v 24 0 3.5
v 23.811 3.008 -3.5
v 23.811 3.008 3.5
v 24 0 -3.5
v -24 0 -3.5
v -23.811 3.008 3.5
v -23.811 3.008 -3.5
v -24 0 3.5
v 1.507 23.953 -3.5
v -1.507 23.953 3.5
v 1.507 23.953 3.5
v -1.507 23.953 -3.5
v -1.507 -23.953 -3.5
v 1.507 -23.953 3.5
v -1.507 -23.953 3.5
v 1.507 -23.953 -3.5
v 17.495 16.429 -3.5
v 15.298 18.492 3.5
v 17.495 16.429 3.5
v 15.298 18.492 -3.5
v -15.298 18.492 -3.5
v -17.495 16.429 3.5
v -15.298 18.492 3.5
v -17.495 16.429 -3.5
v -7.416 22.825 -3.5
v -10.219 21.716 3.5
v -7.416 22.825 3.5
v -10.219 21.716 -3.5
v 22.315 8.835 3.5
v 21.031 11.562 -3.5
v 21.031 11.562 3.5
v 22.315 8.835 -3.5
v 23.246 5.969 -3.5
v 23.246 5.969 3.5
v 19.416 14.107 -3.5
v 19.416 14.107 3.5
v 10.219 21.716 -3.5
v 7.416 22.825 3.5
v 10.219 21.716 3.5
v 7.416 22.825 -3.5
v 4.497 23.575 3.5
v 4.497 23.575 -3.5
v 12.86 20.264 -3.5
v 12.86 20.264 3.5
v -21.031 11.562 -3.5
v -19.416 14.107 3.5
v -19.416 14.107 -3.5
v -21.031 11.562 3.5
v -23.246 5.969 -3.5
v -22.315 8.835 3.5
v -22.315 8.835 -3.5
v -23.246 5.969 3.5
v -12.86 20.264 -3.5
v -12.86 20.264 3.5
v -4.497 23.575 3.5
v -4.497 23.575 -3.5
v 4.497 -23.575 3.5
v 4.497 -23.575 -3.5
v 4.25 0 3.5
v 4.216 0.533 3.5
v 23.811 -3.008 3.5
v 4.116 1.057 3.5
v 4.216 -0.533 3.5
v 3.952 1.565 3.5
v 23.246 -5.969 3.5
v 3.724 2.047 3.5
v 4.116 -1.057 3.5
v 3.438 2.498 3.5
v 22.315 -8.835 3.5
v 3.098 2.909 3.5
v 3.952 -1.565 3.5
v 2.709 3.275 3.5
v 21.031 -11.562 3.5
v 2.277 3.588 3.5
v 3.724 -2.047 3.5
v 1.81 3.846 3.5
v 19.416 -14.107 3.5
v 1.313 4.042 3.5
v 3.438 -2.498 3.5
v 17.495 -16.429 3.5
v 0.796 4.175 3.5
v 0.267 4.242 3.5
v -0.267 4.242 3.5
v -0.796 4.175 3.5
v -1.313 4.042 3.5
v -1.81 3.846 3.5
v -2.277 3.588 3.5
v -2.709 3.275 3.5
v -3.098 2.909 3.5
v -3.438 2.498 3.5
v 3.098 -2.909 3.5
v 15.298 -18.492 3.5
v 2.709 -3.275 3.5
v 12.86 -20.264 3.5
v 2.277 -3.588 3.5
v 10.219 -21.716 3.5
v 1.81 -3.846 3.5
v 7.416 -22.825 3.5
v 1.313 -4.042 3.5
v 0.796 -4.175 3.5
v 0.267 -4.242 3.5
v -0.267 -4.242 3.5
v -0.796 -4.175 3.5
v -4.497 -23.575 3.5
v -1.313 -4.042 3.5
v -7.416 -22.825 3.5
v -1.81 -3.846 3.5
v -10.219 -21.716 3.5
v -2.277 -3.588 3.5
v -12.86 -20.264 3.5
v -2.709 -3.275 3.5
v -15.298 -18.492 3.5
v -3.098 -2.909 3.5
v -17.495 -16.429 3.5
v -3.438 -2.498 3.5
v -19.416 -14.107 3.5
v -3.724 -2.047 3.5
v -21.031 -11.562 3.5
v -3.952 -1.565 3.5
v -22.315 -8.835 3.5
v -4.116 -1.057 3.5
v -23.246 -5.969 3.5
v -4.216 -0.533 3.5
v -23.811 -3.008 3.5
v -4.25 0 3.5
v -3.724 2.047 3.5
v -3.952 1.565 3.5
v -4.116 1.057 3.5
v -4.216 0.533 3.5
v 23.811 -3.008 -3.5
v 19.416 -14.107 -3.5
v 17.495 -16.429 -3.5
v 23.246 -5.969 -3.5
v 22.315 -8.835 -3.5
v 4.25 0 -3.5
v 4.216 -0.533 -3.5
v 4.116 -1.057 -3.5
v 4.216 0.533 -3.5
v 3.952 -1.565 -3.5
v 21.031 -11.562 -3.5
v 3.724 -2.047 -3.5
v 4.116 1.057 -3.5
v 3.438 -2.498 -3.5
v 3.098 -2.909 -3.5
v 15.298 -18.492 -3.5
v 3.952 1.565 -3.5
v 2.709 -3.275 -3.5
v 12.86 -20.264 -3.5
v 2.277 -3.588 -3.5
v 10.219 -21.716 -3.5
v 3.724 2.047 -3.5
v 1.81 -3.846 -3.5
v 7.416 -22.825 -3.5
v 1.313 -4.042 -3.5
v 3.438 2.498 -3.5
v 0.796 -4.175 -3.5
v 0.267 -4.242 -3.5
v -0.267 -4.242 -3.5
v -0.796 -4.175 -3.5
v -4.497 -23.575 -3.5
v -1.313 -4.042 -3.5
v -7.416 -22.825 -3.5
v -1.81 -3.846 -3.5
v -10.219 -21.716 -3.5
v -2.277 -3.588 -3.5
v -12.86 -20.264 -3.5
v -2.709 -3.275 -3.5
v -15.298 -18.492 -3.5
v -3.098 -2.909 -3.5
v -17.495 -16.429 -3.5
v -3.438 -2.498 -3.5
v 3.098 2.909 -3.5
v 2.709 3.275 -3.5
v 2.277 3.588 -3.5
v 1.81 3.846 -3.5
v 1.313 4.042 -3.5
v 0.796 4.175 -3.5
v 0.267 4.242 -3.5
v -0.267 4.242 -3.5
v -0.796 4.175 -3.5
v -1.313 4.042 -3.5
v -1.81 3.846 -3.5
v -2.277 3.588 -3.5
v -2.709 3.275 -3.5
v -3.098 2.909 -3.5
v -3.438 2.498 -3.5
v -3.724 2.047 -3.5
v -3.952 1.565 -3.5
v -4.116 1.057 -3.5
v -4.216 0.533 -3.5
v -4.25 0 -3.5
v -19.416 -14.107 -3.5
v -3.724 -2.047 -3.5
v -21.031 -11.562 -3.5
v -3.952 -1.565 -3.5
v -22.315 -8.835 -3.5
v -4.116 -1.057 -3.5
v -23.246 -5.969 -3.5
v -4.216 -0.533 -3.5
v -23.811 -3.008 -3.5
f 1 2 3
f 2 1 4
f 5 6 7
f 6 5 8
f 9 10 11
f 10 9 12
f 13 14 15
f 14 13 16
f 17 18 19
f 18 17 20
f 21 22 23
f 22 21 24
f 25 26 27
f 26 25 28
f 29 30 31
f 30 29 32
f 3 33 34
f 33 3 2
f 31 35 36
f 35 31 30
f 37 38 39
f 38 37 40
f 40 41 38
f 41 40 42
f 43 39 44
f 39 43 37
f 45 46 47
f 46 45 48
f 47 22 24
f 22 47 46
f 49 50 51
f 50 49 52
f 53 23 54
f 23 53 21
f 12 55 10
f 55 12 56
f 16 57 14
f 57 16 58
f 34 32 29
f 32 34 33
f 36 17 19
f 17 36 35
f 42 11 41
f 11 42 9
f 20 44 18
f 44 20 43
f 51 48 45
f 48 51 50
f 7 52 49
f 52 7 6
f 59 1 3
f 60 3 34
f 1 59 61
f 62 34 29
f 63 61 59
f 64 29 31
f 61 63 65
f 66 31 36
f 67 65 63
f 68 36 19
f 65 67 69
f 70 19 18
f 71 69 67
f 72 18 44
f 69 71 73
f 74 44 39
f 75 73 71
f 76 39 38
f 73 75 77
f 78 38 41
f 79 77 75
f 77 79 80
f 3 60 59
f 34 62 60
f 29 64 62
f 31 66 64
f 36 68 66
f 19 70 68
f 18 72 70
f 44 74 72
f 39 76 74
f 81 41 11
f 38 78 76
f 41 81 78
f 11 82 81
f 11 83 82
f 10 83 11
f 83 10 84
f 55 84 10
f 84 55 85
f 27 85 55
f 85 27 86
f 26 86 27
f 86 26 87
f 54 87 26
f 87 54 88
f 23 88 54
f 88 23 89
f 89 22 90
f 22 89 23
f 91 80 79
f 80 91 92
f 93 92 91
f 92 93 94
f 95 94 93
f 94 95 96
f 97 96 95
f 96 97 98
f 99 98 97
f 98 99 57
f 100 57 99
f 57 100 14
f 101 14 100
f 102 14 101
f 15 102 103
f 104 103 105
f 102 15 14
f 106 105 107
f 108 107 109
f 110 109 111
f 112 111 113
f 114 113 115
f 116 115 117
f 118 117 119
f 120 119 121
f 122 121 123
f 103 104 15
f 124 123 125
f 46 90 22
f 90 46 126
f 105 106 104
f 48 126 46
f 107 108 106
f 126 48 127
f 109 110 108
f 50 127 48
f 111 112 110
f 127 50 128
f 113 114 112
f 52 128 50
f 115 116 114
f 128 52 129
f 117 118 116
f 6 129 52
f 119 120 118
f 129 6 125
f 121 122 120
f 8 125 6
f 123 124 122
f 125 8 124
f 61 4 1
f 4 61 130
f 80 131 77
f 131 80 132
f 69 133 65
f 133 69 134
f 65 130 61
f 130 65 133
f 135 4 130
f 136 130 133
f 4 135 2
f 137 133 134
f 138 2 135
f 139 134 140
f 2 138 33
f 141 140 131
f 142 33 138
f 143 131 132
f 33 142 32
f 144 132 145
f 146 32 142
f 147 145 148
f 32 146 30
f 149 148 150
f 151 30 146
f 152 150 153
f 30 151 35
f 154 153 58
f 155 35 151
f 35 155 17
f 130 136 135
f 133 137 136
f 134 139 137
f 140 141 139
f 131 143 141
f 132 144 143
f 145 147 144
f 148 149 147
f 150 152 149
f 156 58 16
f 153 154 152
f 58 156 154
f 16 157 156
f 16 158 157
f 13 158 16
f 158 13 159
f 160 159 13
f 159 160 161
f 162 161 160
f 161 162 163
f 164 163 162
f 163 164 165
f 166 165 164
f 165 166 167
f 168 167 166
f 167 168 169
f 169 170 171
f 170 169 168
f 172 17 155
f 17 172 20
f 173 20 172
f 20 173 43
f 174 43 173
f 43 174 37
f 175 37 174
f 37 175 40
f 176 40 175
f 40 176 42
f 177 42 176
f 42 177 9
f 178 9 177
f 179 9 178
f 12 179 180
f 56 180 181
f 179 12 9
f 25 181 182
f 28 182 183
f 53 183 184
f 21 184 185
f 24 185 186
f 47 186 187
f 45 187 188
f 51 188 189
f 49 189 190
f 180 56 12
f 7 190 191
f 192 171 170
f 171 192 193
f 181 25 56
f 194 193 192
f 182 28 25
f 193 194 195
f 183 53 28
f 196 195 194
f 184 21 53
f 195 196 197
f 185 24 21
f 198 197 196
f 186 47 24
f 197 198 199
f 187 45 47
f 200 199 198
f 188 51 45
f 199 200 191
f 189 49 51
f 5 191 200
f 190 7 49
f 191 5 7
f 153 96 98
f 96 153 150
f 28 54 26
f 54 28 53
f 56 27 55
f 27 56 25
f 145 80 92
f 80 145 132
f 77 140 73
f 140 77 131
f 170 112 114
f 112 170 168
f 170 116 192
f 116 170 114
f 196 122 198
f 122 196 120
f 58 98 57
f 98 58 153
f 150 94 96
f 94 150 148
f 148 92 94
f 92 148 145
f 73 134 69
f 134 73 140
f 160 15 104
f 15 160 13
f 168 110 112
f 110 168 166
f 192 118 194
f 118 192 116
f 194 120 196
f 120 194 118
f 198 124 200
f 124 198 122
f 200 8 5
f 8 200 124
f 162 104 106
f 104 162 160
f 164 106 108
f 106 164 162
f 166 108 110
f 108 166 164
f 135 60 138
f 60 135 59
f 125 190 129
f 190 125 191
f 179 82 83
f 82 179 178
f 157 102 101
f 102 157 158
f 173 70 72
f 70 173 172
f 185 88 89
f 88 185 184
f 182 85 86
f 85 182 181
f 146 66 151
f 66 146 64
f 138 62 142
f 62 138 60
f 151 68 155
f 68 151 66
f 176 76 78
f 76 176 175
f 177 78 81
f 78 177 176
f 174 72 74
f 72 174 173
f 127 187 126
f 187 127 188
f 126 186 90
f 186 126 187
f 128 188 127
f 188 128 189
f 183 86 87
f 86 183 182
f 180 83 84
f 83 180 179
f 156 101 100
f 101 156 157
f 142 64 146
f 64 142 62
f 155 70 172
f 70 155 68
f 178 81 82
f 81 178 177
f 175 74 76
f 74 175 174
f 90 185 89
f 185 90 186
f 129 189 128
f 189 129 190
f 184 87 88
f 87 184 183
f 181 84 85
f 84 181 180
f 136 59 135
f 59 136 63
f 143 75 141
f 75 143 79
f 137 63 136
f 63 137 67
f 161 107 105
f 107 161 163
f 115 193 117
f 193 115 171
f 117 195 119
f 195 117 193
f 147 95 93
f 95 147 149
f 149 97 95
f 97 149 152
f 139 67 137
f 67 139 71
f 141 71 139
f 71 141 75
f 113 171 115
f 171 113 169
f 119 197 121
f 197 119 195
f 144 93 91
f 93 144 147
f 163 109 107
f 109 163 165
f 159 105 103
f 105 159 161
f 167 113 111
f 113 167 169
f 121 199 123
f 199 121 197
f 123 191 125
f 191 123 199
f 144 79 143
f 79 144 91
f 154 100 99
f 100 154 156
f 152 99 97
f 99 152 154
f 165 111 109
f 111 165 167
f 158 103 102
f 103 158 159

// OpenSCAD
$fn = 50;


difference() {
	union() {
		translate(v = [0, 0, -3.5000000000]) {
			cylinder(h = 7, r = 24.0000000000);
		}
	}
	union() {
		translate(v = [0, 0, -100.0000000000]) {
			cylinder(h = 200, r = 4.2500000000);
		}
	}
}
